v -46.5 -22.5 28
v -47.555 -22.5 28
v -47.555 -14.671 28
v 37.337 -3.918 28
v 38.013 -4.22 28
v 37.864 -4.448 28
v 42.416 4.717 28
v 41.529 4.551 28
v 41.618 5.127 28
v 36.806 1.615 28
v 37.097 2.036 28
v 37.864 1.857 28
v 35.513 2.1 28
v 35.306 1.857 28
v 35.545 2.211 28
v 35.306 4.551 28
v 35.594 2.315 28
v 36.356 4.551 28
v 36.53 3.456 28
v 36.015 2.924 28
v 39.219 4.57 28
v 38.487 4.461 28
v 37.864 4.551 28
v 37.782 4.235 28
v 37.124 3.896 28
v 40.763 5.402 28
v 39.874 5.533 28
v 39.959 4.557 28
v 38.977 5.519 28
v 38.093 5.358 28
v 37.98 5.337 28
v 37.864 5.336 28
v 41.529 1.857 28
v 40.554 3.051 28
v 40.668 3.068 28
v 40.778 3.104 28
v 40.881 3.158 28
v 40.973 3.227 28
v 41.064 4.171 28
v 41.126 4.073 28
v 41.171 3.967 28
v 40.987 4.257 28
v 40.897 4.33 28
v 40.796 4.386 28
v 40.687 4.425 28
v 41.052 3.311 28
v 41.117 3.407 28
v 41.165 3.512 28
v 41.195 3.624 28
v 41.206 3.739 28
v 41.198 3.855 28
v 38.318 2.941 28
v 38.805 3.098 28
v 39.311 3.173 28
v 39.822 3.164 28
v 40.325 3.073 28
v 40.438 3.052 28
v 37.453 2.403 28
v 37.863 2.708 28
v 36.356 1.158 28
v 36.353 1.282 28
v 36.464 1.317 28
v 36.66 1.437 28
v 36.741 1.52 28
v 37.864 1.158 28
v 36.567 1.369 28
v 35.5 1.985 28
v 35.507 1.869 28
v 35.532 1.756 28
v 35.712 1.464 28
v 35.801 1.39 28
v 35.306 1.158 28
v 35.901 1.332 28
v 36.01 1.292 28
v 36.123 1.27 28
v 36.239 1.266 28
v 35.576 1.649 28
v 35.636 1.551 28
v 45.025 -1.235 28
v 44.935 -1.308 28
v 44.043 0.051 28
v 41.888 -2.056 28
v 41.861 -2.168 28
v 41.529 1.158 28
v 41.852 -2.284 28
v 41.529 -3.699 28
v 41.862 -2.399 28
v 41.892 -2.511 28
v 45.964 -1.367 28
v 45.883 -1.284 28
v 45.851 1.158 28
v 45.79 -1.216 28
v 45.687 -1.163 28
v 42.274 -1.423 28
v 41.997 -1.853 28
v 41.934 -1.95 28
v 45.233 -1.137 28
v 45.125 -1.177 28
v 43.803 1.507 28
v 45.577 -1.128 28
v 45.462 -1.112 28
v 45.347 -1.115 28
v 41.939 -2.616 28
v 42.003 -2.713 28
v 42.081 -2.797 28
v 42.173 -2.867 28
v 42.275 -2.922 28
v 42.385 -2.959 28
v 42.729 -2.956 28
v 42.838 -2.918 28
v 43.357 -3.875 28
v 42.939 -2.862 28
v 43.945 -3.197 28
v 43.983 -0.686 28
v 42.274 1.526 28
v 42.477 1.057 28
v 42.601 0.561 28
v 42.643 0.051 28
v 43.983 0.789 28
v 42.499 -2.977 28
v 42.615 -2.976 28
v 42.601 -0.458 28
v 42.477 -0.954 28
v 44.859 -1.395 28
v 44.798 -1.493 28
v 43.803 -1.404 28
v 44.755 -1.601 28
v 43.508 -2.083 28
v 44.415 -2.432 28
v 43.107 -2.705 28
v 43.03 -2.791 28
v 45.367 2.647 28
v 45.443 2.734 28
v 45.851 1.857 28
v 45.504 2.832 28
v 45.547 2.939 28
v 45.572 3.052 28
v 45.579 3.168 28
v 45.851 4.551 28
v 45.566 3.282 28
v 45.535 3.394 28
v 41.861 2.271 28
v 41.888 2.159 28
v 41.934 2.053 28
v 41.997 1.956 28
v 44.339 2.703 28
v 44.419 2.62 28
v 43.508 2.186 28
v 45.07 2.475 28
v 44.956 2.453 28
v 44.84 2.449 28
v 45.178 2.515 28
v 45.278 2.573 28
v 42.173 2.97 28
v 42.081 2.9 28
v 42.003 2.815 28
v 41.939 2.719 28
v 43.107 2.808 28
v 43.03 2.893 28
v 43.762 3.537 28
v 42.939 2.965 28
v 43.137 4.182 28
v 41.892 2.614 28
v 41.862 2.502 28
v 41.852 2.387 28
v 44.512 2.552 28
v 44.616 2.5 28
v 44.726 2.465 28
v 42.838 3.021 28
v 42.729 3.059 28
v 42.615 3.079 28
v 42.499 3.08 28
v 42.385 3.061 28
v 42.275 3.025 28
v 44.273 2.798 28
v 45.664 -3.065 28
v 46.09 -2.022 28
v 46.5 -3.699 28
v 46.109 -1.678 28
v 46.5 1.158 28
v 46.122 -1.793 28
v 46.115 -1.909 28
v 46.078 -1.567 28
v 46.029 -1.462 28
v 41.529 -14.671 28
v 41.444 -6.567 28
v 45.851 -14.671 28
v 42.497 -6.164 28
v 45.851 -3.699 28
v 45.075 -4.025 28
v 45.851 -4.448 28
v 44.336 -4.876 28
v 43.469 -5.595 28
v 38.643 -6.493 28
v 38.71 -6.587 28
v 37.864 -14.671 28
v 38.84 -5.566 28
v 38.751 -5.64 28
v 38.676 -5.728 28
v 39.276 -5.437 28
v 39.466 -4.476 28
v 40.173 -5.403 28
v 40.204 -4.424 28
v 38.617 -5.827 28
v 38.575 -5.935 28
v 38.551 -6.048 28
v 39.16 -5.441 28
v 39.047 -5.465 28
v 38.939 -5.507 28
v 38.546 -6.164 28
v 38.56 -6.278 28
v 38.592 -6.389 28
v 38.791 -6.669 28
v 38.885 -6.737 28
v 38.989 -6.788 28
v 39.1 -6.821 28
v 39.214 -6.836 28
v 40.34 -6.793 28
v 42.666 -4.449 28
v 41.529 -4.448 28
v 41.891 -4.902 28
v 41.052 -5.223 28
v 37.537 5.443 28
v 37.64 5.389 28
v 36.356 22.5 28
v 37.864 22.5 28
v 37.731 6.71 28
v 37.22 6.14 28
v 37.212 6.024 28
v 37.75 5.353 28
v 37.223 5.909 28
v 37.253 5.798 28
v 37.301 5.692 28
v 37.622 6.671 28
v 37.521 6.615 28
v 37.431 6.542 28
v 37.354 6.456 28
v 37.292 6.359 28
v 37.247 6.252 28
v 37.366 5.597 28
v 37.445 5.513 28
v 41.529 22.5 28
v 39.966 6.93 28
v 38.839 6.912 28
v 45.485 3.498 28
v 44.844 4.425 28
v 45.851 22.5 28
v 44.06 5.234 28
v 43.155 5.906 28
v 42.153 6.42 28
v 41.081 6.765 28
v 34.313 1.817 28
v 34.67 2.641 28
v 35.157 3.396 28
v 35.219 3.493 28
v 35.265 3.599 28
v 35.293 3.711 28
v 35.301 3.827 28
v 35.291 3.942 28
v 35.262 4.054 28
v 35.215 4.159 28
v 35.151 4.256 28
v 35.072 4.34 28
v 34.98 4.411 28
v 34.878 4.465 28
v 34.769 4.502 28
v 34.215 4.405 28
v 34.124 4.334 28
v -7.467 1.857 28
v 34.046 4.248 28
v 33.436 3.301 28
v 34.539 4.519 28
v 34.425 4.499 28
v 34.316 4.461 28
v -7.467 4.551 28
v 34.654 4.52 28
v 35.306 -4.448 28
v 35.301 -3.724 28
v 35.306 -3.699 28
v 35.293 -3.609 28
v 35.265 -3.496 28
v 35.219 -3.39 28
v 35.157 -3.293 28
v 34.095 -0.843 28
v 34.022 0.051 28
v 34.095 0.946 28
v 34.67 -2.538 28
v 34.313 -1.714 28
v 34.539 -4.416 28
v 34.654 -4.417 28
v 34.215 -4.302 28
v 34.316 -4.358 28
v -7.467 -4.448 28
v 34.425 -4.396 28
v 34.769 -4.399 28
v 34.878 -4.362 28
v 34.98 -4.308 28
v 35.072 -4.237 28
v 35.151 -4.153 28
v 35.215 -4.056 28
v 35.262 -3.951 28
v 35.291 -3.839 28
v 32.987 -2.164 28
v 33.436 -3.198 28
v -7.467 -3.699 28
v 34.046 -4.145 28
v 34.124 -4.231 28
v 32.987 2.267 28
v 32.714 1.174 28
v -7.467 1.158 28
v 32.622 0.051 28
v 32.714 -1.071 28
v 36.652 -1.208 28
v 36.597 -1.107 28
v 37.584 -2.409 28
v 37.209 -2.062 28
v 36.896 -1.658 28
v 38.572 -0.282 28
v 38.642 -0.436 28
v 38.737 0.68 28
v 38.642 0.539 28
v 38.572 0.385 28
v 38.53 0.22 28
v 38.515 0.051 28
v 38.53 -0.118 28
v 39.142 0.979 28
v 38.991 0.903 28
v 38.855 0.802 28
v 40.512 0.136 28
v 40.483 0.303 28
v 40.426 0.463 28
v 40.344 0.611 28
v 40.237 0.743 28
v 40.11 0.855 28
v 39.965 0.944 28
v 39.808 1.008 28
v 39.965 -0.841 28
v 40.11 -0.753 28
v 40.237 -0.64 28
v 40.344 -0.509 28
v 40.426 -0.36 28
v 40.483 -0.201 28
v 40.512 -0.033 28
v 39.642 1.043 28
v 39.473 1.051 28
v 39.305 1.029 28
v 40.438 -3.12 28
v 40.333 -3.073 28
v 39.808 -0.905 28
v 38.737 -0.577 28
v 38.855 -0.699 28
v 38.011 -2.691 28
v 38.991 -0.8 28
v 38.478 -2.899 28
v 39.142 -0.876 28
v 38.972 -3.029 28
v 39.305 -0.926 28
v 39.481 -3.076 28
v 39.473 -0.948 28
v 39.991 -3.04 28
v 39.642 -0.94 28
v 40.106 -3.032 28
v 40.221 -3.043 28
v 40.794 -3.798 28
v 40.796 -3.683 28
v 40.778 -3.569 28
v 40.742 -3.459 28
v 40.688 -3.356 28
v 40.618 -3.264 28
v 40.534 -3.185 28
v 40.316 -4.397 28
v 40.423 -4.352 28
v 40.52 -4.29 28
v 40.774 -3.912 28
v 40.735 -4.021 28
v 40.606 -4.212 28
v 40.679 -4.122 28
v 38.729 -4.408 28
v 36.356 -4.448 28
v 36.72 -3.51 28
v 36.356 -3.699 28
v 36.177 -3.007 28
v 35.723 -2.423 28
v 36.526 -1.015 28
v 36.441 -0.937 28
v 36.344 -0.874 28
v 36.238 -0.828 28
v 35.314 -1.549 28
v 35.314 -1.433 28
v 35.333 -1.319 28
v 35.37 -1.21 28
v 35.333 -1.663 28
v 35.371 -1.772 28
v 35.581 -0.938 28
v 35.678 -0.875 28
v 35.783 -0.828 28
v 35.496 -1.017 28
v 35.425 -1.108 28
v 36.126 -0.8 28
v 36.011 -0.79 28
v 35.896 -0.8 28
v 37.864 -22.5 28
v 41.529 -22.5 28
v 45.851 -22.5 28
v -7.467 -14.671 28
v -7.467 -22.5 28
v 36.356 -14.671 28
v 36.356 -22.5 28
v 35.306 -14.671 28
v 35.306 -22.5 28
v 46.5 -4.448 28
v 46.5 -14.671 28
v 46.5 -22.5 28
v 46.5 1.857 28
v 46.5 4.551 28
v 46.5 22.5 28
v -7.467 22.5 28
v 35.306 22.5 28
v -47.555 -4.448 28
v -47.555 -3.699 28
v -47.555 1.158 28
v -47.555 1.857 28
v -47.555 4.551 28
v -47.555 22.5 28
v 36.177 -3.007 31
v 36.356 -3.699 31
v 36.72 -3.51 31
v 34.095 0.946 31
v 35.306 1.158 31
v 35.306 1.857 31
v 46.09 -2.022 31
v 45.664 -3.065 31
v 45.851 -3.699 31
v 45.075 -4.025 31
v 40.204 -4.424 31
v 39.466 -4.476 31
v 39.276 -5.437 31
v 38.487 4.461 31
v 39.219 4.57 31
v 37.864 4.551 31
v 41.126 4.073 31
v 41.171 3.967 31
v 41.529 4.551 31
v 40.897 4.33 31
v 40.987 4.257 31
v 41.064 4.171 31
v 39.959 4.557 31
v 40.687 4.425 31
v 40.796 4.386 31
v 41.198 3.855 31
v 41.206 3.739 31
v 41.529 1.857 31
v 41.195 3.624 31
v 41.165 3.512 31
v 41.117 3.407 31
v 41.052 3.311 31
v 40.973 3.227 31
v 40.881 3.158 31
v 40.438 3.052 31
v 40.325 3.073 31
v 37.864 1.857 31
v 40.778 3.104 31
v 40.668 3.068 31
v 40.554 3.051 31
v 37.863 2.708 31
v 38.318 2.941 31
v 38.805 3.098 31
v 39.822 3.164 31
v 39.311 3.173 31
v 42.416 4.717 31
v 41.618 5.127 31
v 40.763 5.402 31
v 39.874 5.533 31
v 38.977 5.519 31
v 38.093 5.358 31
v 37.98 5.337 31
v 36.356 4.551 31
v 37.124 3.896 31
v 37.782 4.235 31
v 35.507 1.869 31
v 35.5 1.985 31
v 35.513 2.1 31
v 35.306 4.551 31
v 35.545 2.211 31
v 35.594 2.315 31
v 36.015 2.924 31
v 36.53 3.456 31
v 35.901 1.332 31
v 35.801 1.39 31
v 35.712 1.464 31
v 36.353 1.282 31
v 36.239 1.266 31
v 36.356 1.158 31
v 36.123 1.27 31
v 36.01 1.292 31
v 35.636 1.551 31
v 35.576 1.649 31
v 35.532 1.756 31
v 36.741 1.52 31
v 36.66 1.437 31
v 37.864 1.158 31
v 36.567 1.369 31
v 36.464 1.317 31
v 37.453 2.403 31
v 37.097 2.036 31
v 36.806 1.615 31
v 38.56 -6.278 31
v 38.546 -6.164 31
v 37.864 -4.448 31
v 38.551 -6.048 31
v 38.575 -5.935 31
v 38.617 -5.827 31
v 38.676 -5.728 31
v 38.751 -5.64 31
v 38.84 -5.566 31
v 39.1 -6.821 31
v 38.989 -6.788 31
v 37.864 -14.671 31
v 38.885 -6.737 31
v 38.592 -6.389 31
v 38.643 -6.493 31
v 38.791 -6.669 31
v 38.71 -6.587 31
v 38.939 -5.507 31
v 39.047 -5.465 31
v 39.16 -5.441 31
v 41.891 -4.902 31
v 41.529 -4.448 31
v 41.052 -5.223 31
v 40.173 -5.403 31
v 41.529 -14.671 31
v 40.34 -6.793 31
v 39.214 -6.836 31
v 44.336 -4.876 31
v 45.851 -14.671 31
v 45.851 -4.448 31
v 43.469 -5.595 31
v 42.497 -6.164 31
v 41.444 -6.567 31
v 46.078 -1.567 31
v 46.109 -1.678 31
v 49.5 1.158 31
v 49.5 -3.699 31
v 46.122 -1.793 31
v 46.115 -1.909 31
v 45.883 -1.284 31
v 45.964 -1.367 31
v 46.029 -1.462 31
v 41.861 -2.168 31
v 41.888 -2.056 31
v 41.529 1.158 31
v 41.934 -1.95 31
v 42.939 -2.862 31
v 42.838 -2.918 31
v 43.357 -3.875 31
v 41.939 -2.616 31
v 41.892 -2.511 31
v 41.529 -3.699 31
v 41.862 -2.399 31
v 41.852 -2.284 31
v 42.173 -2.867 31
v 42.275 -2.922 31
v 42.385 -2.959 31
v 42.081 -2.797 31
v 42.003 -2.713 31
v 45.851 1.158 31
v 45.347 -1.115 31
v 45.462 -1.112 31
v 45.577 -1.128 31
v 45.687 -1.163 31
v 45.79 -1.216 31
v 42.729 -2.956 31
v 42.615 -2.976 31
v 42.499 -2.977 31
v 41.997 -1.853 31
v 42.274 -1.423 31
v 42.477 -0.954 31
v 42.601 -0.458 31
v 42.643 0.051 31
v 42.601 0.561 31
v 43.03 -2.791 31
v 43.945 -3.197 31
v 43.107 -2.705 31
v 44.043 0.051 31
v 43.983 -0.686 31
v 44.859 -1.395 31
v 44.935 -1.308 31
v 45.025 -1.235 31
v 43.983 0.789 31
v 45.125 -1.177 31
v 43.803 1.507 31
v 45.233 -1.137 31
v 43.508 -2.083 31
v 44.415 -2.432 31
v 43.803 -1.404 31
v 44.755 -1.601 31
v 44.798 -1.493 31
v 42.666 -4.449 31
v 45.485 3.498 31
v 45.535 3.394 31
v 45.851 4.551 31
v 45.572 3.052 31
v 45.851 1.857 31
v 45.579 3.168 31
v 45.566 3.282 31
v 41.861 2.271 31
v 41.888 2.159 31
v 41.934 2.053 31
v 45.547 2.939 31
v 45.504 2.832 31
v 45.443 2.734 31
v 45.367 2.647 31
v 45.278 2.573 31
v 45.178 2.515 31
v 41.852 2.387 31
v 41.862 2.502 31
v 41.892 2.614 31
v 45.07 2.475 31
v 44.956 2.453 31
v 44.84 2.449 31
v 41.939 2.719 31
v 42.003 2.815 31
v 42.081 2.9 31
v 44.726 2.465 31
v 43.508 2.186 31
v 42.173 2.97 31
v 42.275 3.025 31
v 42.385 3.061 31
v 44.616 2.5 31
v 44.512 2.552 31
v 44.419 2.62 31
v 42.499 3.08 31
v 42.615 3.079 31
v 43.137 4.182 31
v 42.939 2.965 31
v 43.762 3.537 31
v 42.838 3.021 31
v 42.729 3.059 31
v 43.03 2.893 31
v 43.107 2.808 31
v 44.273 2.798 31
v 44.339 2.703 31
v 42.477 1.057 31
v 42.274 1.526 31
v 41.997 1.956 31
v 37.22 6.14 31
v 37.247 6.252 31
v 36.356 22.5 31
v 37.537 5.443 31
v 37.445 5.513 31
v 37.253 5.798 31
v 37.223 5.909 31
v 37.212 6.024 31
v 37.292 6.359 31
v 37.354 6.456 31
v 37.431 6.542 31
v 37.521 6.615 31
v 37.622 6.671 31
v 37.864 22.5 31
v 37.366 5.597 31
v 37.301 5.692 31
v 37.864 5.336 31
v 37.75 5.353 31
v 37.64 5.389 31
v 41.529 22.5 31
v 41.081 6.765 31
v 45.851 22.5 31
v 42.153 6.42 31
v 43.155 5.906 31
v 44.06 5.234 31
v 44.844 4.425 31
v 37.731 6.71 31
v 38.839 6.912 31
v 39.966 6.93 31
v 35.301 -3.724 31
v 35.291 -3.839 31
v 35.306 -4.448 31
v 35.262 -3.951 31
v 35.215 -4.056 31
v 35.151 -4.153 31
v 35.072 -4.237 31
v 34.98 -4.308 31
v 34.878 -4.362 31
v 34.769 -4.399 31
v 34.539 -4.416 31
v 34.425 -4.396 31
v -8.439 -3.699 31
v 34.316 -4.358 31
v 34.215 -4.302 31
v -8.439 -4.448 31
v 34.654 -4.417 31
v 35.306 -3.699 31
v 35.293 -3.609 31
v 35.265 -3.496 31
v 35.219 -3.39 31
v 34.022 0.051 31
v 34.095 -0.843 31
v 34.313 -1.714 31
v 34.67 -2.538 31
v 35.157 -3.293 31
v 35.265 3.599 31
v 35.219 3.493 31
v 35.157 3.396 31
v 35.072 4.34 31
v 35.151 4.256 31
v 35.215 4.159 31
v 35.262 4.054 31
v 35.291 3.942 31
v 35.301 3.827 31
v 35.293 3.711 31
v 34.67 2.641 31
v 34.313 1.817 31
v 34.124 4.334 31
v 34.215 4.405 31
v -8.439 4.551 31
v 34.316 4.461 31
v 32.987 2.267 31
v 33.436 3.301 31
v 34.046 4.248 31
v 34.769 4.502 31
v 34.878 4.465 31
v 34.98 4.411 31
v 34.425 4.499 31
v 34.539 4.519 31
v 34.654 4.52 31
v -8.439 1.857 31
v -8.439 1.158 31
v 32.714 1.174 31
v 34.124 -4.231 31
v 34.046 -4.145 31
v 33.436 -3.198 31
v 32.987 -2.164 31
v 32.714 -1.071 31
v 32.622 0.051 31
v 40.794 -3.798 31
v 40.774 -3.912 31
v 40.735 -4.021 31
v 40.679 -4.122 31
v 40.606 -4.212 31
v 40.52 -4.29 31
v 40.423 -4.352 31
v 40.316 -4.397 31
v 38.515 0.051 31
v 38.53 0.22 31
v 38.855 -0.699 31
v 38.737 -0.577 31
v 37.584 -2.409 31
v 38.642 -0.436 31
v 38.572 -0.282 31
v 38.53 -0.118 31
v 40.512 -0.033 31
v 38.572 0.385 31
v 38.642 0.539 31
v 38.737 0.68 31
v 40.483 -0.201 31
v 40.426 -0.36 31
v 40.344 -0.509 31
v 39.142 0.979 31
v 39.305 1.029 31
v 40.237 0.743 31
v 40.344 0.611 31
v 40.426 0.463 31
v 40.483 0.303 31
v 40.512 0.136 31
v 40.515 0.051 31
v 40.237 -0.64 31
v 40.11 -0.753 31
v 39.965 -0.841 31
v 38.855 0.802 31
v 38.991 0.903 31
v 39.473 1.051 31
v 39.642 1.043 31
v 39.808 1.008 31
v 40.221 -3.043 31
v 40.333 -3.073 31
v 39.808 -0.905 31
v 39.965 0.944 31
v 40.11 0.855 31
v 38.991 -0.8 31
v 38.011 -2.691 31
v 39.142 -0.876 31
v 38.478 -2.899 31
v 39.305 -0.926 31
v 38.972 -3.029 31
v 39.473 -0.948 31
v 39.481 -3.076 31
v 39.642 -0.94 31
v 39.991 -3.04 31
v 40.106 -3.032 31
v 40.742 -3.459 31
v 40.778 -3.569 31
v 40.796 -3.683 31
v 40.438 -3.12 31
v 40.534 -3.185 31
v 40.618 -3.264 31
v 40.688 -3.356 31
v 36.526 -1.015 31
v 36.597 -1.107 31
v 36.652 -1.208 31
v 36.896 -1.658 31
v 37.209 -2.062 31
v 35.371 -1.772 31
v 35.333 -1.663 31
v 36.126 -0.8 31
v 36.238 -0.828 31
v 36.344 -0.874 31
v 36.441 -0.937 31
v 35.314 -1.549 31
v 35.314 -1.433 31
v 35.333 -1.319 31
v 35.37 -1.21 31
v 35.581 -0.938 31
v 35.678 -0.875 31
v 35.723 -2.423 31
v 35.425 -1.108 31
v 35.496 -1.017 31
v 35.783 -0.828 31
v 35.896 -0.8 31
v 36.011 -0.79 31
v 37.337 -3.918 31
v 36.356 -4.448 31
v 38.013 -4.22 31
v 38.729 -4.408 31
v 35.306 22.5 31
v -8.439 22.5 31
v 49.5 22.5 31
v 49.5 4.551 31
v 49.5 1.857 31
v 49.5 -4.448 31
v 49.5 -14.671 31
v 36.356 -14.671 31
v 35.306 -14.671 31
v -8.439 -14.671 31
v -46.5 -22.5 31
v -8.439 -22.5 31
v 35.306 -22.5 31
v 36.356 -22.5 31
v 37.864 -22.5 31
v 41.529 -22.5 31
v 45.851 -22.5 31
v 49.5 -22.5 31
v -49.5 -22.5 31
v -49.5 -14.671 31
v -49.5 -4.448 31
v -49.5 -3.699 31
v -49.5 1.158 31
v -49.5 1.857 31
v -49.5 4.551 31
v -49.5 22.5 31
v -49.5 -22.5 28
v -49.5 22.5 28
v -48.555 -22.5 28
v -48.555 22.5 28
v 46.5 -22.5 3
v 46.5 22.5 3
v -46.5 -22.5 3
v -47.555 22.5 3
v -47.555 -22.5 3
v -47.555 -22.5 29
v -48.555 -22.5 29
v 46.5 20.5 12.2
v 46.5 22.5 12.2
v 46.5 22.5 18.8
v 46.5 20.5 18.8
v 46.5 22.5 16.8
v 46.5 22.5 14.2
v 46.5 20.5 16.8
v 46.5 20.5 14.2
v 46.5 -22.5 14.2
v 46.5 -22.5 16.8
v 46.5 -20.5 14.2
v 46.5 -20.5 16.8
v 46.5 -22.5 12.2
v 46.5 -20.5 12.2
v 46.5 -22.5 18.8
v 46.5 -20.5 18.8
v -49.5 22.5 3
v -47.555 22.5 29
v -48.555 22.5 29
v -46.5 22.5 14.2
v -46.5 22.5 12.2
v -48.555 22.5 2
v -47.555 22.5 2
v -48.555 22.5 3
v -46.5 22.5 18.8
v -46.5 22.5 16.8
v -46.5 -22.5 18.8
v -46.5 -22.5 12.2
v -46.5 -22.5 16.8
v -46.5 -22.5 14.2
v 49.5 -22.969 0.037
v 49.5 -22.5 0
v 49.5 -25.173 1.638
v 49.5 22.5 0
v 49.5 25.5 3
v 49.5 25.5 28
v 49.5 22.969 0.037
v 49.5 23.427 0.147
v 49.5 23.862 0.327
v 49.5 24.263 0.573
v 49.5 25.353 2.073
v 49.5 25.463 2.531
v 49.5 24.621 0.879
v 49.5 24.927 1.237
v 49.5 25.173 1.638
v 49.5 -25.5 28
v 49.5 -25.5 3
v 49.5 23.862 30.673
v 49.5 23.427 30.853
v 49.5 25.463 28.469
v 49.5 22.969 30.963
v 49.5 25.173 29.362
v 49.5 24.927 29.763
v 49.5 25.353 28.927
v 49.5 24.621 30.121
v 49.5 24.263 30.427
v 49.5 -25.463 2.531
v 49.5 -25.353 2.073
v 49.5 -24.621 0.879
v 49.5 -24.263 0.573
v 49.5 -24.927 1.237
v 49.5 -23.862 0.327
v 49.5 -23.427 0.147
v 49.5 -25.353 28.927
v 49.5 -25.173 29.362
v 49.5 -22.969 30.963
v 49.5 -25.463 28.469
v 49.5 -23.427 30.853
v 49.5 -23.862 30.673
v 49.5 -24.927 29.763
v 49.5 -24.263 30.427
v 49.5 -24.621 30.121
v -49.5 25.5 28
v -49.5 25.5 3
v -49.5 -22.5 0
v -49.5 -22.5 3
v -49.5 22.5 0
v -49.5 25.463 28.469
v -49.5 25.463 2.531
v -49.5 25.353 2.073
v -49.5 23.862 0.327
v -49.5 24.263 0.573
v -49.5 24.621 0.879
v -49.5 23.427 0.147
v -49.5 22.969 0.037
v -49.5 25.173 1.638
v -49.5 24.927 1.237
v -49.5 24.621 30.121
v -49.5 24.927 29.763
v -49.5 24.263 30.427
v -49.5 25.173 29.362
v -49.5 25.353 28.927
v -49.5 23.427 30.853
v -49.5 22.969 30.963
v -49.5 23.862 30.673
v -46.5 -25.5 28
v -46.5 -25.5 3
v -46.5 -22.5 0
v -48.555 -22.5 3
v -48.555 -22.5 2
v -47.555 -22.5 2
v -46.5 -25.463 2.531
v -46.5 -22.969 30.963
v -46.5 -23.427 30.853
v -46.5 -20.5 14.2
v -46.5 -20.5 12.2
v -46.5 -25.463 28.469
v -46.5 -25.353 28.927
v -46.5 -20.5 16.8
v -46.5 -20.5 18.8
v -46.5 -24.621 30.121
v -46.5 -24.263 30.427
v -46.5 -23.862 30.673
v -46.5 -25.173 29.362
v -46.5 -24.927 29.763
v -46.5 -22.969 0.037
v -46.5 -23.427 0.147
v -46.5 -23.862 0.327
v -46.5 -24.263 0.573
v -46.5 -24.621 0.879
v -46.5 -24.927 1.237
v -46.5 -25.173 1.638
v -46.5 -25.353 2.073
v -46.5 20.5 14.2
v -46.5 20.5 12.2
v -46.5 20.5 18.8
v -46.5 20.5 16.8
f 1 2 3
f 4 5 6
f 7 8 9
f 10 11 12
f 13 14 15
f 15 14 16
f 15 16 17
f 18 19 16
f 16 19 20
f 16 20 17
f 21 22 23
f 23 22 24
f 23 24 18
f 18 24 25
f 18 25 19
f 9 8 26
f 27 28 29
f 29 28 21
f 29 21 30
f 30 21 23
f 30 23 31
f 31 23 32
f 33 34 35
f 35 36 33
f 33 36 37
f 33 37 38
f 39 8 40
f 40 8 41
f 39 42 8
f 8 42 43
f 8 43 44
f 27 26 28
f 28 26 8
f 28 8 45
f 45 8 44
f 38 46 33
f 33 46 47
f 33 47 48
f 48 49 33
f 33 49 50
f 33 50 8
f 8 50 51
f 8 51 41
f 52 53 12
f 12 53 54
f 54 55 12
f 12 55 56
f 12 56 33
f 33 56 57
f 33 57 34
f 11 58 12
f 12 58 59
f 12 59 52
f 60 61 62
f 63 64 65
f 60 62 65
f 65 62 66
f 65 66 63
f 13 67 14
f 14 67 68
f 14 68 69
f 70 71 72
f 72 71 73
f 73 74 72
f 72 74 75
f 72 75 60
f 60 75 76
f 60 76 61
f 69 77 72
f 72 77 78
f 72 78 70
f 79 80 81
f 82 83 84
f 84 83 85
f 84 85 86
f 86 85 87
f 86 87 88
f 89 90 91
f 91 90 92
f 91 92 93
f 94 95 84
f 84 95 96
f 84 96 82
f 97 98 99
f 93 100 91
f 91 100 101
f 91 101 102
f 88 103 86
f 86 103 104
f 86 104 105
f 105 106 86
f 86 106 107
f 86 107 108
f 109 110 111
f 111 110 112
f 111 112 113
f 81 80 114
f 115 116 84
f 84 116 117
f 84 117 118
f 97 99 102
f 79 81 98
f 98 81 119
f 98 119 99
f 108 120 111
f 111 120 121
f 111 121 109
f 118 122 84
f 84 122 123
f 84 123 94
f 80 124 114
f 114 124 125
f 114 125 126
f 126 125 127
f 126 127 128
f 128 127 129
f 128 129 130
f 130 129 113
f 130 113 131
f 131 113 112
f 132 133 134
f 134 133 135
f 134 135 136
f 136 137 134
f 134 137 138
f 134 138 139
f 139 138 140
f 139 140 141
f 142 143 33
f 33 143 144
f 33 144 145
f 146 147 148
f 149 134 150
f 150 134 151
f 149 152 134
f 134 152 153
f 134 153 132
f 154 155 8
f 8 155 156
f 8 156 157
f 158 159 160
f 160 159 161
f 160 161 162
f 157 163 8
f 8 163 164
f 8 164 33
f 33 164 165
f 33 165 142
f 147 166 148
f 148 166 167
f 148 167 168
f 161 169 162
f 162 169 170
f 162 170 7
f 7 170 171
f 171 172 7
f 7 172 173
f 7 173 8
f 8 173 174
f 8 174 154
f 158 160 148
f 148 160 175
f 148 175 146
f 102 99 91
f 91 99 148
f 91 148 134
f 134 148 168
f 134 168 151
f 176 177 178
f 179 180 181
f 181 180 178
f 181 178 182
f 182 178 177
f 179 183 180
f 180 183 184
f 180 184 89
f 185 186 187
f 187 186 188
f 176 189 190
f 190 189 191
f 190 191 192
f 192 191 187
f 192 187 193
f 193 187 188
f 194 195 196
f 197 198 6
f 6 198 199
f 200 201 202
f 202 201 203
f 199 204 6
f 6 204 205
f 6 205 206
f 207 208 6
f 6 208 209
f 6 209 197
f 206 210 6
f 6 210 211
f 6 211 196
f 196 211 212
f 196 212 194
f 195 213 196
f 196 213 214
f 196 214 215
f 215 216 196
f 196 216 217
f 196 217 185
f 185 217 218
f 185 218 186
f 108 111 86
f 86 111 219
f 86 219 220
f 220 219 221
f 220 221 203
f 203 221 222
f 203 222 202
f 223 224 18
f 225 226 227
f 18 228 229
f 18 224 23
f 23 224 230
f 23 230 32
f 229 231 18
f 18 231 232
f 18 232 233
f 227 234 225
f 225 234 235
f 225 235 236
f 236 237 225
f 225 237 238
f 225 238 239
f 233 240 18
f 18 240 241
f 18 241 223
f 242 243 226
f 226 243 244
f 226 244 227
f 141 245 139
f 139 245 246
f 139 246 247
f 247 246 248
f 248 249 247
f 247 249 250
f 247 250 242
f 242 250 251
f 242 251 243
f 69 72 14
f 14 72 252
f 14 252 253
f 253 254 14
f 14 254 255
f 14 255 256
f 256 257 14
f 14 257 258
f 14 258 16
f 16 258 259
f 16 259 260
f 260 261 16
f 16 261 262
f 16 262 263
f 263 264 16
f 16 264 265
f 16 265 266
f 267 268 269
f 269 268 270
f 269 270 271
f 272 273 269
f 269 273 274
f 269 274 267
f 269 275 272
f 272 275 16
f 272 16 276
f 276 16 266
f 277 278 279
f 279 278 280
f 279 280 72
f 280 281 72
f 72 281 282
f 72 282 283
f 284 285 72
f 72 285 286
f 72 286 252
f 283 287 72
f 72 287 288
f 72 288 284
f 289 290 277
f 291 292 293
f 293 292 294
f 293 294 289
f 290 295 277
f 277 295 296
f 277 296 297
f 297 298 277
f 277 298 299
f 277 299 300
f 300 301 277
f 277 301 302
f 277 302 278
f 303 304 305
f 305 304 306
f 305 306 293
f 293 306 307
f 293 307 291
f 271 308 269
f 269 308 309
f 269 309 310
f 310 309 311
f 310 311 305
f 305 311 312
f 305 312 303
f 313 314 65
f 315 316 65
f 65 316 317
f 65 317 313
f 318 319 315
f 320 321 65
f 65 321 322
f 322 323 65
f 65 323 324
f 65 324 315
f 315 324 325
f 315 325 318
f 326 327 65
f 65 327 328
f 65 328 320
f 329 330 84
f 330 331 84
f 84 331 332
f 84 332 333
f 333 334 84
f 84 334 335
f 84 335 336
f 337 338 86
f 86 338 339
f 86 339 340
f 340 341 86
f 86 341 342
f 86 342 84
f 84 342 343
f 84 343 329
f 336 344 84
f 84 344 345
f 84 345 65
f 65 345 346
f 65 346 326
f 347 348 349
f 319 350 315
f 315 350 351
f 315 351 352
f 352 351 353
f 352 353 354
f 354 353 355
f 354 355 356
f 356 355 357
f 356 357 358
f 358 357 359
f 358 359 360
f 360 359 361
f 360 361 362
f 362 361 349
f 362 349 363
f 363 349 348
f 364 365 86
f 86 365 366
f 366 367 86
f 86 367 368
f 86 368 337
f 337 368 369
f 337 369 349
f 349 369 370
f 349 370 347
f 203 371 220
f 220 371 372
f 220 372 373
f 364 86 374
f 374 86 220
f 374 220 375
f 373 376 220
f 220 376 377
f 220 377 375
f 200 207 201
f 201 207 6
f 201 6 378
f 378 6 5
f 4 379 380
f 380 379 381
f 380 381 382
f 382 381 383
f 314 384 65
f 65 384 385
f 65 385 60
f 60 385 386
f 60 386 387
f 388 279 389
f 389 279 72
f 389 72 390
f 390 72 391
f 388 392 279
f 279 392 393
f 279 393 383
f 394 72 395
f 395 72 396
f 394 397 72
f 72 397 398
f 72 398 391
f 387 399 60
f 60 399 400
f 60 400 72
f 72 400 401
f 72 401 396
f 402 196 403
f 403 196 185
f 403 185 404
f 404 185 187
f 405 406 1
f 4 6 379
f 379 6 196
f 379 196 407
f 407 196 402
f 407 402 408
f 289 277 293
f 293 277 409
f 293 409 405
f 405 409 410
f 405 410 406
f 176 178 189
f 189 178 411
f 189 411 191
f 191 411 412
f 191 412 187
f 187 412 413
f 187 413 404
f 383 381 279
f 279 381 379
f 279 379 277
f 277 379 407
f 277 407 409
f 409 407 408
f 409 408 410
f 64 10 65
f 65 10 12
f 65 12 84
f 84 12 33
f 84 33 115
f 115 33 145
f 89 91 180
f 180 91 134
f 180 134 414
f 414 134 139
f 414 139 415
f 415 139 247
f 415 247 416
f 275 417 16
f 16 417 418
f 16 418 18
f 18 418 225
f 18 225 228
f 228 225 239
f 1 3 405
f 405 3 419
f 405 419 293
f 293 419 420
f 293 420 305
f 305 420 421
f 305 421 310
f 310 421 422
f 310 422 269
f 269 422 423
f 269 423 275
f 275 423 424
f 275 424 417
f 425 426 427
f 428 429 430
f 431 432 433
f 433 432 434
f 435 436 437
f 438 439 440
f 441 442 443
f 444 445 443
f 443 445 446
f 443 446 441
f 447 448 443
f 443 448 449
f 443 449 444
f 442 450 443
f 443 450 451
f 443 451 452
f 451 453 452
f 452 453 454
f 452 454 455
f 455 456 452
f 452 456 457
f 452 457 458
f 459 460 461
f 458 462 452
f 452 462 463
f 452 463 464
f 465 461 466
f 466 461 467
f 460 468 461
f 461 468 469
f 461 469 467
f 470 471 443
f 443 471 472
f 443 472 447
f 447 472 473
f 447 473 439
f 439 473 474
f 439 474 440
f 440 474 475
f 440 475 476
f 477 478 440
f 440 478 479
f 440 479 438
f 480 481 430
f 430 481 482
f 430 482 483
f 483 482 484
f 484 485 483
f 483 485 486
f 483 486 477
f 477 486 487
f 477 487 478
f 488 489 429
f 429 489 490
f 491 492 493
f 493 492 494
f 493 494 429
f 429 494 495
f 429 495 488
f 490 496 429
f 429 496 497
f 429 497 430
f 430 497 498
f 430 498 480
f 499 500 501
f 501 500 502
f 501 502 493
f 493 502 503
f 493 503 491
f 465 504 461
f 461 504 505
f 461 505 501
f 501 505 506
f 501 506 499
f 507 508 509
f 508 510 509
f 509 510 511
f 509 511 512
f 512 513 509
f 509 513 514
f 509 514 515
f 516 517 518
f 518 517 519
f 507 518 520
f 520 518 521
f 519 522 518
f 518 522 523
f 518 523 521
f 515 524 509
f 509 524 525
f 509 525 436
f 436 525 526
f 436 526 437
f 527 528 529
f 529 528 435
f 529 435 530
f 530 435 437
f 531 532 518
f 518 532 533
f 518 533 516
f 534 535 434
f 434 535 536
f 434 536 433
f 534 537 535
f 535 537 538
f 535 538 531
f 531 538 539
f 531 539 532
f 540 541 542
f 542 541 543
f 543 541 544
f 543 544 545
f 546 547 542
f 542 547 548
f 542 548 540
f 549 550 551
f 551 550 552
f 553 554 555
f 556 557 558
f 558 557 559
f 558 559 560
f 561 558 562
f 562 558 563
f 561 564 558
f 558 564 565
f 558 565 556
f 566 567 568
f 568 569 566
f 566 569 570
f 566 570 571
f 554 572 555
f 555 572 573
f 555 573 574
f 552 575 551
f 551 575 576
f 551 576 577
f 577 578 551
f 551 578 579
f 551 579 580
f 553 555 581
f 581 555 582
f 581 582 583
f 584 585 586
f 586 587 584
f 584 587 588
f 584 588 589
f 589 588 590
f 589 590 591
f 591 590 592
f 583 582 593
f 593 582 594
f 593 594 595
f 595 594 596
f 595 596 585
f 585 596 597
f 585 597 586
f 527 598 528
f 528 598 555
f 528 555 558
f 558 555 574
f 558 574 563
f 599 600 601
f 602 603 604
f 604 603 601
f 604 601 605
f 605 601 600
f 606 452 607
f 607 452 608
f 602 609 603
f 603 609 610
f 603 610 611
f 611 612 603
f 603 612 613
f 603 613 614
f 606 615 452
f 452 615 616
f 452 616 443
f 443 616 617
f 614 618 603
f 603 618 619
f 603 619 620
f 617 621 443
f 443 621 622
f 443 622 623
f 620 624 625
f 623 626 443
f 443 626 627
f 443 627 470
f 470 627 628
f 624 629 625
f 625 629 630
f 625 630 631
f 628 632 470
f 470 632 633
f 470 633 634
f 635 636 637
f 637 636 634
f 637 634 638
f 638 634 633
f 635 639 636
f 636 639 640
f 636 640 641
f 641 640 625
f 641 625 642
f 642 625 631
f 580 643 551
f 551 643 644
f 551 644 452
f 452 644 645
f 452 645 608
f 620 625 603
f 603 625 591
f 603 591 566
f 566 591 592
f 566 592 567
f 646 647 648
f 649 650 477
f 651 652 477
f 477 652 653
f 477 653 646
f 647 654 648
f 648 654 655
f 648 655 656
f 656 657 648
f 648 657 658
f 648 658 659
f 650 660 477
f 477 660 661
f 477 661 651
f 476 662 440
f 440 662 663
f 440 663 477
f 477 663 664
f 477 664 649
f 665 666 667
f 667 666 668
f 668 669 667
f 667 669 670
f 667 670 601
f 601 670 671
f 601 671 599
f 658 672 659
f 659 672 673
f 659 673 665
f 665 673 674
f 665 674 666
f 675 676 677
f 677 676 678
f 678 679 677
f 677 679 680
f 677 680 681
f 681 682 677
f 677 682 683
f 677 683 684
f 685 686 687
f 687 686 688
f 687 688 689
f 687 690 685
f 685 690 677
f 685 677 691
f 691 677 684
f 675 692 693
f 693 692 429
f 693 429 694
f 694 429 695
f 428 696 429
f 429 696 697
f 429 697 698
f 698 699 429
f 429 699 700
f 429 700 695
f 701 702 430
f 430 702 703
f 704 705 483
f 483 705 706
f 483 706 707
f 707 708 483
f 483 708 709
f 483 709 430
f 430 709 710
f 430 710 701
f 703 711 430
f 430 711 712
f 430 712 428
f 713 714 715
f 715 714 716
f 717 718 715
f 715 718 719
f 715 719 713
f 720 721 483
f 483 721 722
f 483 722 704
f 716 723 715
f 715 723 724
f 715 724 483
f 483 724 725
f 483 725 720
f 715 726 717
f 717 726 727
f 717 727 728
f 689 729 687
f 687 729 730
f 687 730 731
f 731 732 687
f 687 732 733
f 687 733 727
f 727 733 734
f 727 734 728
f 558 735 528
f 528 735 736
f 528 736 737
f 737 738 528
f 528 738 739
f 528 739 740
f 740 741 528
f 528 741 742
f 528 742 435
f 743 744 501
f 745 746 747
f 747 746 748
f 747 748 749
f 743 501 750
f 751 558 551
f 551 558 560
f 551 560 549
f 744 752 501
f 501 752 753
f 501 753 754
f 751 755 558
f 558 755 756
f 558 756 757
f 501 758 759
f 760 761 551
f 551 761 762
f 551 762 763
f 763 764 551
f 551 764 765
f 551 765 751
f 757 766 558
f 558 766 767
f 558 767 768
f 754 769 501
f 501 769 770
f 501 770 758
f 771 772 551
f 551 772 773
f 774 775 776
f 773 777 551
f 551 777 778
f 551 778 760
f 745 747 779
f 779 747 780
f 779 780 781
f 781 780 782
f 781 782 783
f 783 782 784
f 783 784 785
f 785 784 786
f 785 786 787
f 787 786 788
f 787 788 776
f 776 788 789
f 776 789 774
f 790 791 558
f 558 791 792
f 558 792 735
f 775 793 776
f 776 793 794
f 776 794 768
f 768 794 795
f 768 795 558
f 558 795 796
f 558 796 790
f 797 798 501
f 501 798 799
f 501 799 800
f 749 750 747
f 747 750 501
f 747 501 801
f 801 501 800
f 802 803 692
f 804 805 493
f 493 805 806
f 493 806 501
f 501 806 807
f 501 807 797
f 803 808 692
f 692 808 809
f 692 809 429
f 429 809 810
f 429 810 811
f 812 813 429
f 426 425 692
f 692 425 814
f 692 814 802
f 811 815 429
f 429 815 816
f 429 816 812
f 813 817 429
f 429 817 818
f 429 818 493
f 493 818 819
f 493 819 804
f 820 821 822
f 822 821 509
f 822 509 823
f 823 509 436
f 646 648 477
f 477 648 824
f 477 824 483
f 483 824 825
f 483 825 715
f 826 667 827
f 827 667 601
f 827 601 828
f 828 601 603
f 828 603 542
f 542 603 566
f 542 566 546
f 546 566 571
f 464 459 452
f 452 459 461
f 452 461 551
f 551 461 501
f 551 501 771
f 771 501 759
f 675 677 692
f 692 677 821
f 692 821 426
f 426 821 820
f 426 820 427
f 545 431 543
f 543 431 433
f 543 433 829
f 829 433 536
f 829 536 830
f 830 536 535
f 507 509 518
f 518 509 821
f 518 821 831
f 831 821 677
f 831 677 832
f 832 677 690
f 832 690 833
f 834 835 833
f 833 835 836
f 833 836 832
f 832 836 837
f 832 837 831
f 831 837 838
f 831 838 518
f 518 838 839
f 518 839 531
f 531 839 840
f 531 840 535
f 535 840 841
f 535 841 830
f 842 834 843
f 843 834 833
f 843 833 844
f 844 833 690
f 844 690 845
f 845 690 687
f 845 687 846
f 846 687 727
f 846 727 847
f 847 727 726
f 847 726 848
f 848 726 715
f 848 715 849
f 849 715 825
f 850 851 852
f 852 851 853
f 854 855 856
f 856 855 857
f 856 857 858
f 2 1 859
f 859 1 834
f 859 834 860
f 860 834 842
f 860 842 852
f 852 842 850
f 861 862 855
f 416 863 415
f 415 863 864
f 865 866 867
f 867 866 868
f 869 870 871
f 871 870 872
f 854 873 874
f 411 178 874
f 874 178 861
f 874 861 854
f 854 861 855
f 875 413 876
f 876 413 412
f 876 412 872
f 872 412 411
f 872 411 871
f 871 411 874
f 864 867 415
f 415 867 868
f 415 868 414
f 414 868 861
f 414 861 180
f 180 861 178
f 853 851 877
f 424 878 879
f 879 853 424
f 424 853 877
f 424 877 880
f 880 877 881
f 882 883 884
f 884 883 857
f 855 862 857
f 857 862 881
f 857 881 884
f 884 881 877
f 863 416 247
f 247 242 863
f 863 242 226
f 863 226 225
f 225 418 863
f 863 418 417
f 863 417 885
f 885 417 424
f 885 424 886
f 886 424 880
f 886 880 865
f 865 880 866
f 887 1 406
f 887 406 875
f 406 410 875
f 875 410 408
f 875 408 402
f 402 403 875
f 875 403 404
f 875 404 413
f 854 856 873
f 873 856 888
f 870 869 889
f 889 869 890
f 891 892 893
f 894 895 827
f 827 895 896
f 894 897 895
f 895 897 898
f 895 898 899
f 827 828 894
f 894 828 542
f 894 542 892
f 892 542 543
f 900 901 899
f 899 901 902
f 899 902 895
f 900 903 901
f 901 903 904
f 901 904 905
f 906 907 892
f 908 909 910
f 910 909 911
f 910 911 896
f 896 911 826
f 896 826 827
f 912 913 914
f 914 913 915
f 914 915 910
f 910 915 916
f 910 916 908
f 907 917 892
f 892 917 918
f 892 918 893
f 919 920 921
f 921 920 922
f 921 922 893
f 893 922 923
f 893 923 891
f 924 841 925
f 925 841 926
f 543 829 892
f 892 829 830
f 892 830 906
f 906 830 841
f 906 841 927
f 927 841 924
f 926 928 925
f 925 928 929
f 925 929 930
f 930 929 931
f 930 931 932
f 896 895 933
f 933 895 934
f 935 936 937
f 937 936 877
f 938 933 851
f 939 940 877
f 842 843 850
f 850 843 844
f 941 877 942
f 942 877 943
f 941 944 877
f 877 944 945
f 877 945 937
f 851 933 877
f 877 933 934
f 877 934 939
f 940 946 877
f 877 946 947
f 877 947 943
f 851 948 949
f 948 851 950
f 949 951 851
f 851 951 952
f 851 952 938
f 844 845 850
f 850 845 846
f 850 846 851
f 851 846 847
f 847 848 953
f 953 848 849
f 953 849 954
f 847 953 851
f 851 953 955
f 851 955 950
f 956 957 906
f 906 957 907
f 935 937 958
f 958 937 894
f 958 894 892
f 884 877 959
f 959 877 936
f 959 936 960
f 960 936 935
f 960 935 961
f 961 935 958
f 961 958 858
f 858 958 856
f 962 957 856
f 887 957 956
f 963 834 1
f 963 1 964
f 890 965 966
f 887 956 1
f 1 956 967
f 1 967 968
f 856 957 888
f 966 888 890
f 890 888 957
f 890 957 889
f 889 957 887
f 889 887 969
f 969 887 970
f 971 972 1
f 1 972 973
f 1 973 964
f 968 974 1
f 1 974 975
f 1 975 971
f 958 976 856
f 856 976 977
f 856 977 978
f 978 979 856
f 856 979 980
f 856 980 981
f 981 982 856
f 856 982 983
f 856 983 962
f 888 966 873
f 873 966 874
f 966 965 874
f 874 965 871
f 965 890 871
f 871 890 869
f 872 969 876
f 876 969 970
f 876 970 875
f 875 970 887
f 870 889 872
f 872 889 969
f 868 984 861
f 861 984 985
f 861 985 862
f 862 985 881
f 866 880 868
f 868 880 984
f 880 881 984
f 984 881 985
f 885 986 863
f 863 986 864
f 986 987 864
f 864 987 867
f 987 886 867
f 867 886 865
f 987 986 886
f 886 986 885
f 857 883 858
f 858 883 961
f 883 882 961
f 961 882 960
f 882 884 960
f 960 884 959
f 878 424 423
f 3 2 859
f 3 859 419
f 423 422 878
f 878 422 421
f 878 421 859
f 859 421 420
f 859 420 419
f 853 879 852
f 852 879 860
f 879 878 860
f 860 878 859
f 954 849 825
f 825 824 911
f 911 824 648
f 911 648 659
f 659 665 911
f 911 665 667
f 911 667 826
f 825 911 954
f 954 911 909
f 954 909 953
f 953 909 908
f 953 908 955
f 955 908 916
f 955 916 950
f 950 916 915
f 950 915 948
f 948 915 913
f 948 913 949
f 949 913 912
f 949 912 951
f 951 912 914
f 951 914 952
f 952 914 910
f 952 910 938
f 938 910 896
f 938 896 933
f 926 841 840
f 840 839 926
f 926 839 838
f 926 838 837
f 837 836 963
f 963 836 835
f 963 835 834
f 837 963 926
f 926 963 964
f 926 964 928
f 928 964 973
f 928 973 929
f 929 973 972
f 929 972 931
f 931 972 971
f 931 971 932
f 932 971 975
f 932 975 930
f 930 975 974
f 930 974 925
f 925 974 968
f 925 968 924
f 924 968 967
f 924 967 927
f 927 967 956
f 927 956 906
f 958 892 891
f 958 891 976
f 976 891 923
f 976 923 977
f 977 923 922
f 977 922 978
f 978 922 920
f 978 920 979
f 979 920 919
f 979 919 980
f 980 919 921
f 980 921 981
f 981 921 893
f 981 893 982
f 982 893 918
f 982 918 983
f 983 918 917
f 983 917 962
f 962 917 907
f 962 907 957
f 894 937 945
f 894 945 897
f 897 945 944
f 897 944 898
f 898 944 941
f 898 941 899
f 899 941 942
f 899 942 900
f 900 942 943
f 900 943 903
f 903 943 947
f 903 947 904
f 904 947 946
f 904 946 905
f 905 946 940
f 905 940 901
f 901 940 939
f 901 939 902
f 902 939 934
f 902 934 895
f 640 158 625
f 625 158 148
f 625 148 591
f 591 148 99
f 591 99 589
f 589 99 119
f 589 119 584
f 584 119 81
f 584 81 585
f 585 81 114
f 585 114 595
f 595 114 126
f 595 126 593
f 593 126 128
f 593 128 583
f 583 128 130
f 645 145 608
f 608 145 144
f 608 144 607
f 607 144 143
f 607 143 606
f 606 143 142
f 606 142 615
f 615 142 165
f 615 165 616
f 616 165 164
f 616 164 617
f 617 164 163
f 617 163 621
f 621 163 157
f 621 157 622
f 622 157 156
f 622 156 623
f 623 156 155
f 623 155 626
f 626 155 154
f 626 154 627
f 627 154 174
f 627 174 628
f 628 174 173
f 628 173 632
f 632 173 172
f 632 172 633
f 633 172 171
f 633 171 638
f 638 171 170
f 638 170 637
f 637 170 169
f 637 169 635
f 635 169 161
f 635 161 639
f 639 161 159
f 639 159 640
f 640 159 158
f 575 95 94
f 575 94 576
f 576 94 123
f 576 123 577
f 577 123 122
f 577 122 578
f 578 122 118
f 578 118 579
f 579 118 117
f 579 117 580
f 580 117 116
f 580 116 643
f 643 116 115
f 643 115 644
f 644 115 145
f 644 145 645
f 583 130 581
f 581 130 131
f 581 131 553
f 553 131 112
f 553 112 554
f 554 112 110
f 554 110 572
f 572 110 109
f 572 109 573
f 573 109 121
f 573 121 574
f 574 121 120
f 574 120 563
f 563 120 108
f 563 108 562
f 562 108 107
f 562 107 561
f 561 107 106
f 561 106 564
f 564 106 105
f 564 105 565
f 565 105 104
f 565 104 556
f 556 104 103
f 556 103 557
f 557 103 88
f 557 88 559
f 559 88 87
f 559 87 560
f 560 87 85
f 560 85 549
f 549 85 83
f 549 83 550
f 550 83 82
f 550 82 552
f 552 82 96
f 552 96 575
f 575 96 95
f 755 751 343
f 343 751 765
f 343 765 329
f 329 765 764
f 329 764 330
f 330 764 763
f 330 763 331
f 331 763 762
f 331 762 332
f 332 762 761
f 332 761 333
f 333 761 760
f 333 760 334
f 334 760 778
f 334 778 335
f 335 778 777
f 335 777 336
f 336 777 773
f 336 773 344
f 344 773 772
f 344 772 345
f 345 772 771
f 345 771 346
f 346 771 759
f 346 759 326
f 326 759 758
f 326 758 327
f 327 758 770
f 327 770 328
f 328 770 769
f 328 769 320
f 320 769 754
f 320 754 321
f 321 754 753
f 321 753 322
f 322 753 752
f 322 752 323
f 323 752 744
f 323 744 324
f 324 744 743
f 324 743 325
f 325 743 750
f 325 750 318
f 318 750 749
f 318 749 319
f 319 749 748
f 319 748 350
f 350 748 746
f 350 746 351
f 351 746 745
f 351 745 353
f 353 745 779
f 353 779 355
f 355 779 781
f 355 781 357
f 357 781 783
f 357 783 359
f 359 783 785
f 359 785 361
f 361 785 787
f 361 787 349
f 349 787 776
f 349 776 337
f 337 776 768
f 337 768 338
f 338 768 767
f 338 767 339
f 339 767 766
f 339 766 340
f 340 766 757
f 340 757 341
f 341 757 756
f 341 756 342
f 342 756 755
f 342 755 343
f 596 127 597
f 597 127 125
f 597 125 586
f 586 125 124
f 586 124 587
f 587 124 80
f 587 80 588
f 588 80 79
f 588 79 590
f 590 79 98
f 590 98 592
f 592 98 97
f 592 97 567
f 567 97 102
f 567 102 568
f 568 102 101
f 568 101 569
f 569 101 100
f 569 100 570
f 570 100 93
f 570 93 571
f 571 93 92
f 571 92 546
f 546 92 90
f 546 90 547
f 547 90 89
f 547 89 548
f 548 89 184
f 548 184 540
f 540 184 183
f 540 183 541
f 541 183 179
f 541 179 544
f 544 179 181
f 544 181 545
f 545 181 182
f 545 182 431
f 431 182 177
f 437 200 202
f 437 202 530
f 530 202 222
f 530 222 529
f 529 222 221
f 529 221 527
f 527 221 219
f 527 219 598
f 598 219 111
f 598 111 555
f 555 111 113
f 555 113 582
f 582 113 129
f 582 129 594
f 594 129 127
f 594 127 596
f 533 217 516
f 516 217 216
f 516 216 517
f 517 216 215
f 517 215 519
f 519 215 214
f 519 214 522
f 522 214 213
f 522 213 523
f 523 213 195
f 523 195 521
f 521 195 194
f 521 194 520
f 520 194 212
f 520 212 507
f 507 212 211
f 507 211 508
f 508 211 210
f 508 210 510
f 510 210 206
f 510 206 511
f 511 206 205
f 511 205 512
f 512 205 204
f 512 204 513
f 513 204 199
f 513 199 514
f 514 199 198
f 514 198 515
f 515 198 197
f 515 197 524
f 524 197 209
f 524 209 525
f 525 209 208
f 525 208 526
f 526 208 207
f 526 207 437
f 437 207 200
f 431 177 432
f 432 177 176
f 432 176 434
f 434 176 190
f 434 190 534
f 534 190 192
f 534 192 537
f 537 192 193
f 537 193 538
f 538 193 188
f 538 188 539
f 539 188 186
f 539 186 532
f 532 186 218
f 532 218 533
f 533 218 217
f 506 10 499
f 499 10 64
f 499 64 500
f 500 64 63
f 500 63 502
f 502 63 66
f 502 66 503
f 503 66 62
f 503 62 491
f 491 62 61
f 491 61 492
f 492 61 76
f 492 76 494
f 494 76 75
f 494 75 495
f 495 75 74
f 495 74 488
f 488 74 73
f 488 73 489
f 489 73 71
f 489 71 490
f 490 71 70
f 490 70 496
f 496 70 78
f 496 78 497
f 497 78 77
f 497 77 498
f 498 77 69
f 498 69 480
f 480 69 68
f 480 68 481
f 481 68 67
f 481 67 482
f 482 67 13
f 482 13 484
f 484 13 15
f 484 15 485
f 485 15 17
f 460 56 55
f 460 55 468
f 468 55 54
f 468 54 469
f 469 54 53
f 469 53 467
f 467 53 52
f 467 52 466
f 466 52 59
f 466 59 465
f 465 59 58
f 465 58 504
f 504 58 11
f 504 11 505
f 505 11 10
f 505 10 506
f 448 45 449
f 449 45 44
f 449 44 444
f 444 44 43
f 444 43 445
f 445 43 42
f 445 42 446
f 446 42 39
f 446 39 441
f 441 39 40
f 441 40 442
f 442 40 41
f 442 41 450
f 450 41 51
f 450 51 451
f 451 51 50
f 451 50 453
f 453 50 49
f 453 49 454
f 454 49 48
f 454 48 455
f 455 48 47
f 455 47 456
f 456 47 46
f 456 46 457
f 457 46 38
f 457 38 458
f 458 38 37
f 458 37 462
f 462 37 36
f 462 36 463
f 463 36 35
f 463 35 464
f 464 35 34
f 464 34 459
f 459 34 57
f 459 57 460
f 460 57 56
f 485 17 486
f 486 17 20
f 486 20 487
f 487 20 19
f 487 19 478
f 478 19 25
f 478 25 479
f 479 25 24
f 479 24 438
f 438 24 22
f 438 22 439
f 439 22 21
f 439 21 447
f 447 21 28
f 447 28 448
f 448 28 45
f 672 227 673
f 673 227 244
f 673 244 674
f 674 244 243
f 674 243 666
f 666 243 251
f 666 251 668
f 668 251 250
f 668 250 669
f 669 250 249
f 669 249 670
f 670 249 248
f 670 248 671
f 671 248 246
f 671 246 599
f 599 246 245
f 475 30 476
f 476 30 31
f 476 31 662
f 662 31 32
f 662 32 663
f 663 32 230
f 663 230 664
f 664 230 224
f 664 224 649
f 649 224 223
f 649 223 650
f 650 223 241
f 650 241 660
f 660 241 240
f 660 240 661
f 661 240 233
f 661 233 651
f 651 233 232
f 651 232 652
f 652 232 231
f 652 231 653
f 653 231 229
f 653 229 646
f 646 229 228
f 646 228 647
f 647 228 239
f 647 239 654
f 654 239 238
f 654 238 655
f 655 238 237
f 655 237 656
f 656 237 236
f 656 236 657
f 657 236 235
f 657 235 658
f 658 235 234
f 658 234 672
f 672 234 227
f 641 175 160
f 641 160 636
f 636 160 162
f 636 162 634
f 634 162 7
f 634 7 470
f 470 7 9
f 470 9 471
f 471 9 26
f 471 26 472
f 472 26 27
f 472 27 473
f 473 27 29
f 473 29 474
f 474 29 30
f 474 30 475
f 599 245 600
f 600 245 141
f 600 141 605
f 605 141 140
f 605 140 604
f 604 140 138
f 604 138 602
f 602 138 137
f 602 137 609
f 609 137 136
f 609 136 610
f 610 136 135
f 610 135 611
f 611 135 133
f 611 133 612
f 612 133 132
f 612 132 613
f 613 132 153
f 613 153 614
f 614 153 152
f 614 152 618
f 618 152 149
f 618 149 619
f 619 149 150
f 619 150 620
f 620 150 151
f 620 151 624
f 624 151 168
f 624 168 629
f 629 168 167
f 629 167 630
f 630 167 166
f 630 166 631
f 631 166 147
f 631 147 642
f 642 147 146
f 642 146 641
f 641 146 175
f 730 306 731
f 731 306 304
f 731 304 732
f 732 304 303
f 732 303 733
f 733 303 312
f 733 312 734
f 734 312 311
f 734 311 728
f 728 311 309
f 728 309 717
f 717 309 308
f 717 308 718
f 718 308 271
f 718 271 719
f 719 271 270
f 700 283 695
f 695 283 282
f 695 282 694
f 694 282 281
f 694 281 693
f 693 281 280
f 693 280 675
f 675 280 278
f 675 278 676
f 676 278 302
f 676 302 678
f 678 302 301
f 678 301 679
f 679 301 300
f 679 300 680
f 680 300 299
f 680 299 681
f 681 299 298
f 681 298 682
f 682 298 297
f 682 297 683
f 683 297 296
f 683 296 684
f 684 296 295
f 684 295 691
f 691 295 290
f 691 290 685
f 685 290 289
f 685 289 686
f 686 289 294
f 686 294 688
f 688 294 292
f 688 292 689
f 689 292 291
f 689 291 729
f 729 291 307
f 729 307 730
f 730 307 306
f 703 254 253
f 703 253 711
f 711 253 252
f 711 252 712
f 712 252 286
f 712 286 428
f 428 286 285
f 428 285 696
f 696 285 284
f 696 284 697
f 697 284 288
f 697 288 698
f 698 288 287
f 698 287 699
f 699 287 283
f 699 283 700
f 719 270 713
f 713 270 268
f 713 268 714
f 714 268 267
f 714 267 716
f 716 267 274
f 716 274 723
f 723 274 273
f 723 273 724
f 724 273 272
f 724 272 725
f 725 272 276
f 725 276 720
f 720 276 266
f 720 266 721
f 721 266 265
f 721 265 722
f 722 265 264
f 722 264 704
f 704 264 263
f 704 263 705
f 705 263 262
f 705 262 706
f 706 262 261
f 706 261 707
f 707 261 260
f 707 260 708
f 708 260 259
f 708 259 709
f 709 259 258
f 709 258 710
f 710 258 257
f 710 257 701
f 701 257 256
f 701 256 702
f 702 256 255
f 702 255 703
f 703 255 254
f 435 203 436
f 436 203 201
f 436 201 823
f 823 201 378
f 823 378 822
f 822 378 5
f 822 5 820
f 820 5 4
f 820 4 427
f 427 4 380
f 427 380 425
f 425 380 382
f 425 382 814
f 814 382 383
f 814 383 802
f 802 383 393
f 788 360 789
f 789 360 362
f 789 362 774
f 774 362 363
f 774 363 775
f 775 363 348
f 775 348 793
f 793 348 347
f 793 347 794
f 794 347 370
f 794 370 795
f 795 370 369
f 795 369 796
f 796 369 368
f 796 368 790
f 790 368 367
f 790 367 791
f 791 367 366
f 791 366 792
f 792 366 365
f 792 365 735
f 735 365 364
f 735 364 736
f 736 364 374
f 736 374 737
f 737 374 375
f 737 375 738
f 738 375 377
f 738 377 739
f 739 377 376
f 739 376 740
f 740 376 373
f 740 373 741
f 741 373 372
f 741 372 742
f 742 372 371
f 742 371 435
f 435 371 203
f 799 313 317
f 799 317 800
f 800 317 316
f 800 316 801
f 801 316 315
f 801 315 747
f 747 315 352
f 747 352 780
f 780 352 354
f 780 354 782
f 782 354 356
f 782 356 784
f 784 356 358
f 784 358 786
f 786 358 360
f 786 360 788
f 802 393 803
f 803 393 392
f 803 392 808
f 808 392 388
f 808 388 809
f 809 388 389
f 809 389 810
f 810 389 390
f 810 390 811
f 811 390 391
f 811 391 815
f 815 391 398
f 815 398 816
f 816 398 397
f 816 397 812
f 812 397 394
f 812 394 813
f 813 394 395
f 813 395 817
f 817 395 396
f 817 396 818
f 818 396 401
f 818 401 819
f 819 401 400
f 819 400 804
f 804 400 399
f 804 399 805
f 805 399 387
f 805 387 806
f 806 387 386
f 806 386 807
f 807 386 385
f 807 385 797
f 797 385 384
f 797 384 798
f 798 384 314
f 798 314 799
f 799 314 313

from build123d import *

# Parameters (mm, degrees)
SKETCH1_W           = 99
SKETCH1_H           = 51
BOSS_EXTRUDE2_DEPTH = 31
CUT_EXTRUDE1_DEPTH  = 96
SKETCH4_W           = 3
SKETCH4_H           = 31
CUT_EXTRUDE2_DEPTH  = 3
SKETCH6_W           = 2
SKETCH6_H           = 2
BOSS_EXTRUDE3_DEPTH = 96
SKETCH7_W           = 1
SKETCH7_H           = 1
CUT_EXTRUDE3_DEPTH  = 45
FILLET1_R           = 3
SKETCH9_R           = 1
SKETCH9_R_2         = 0.5
CUT_EXTRUDE4_DEPTH  = 10


with BuildPart() as part:
    # Sketch1 → Boss-Extrude2 (new body)
    with BuildSketch(Plane.XY):
        Rectangle(SKETCH1_W, SKETCH1_H)
    extrude(amount=BOSS_EXTRUDE2_DEPTH)

    # Sketch3 → Cut-Extrude1 (cut)
    with BuildSketch(Plane.ZY.offset(49.5)):
        Polygon((3, 0.616456183), (3, -22.5), (28, -22.5), (28, 22.5), (3, 22.5), align=None)
    extrude(amount=-CUT_EXTRUDE1_DEPTH, mode=Mode.SUBTRACT)

    # Sketch4 → Cut-Extrude2 (cut)
    with BuildSketch(Plane.XZ.offset(25.5)):
        with Locations((-48, 15.5)):
            Rectangle(SKETCH4_W, SKETCH4_H)
    extrude(amount=-CUT_EXTRUDE2_DEPTH, mode=Mode.SUBTRACT)

    # Sketch6 → Boss-Extrude3 (add)
    with BuildSketch(Plane.ZY.offset(46.5)):
        with Locations((13.2, -21.5)):
            Rectangle(SKETCH6_W, SKETCH6_H)
        with Locations((17.8, -21.5)):
            Rectangle(SKETCH6_W, SKETCH6_H)
        with Locations((13.2, 21.5)):
            Rectangle(SKETCH6_W, SKETCH6_H)
        with Locations((17.8, 21.5)):
            Rectangle(SKETCH6_W, SKETCH6_H)
    extrude(amount=-BOSS_EXTRUDE3_DEPTH)

    # Sketch7 → Cut-Extrude3 (cut)
    with BuildSketch(Plane.XZ.offset(22.5)):
        with Locations((-48.055142405, 28.5)):
            Rectangle(SKETCH7_W, SKETCH7_H)
        with Locations((-48.055142405, 2.5)):
            Rectangle(SKETCH7_W, SKETCH7_H)
    extrude(amount=-CUT_EXTRUDE3_DEPTH, mode=Mode.SUBTRACT)

    # Fillet1
    fillet1_edges = [part.edges().sort_by_distance(p)[0] for p in [
        (0, 25.5, 31),
        (1.5, -25.5, 31),
        (1.5, -25.5, 0),
        (0, 25.5, 0),
    ]]
    fillet(fillet1_edges, radius=FILLET1_R)

    # Sketch9 → Cut-Extrude4 (cut)
    # profile 1 of 8: a face of its own
    with BuildSketch(Plane(origin=(0, 0, 28), x_dir=(-1, 0, 0), z_dir=(0, 0, -1))):
        with BuildLine():
            ThreePointArc((-43.107346254, 2.807819217), (-44.043005412, 0.051456221), (-43.107346254, -2.704906774))
            ThreePointArc((-43.107346254, -2.704906774), (-42.125865916, -2.834121112), (-41.996651578, -1.852640773))
            ThreePointArc((-41.996651578, -1.852640773), (-42.643005412, 0.051456221), (-41.996651578, 1.955553216))
            ThreePointArc((-41.996651578, 1.955553216), (-42.125865916, 2.937033554), (-43.107346254, 2.807819217))
        make_face()
    # profile 2 of 8: a face of its own
    with BuildSketch(Plane(origin=(0, 0, 28), x_dir=(-1, 0, 0), z_dir=(0, 0, -1))):
        with BuildLine():
            ThreePointArc((-37.730978714, 6.710201232), (-42.153265918, 6.420349215), (-45.485251514, 3.498276272))
            ThreePointArc((-45.485251514, 3.498276272), (-45.229033732, 2.542058489), (-44.272815949, 2.798276272))
            ThreePointArc((-44.272815949, 2.798276272), (-41.617509112, 5.12691787), (-38.093325377, 5.357905075))
            ThreePointArc((-38.093325377, 5.357905075), (-37.236003967, 5.852879822), (-37.730978714, 6.710201232))
        make_face()
    # profile 3 of 8: a face of its own
    with BuildSketch(Plane(origin=(0, 0, 28), x_dir=(-1, 0, 0), z_dir=(0, 0, -1))):
        with BuildLine():
            ThreePointArc((-35.59397575, 2.315366896), (-35.850193532, 1.359149114), (-36.806411315, 1.615366896))
            ThreePointArc((-36.806411315, 1.615366896), (-38.318218652, 2.941186348), (-40.324723797, 3.072699643))
            ThreePointArc((-40.324723797, 3.072699643), (-41.182045207, 3.56767439), (-40.68707046, 4.4249958))
            ThreePointArc((-40.68707046, 4.4249958), (-37.782461847, 4.234617693), (-35.59397575, 2.315366896))
        make_face()
    # profile 4 of 8: a face of its own
    with BuildSketch(Plane(origin=(0, 0, 28), x_dir=(-1, 0, 0), z_dir=(0, 0, -1))):
        with BuildLine():
            ThreePointArc((-34.046091661, -4.145125978), (-32.621543961, 0.051456221), (-34.046091661, 4.24803842))
            ThreePointArc((-34.046091661, 4.24803842), (-35.027572, 4.377252758), (-35.156786338, 3.39577242))
            ThreePointArc((-35.156786338, 3.39577242), (-34.021543961, 0.051456221), (-35.156786338, -3.292859977))
            ThreePointArc((-35.156786338, -3.292859977), (-35.027572, -4.274340315), (-34.046091661, -4.145125978))
        make_face()
    # profile 5 of 8: a face of its own
    with BuildSketch(Plane(origin=(0, 0, 28), x_dir=(-1, 0, 0), z_dir=(0, 0, -1))):
        with BuildLine():
            ThreePointArc((-40.203971578, -4.423668127), (-37.337352845, -3.918205901), (-35.370817206, -1.772108839))
            ThreePointArc((-35.370817206, -1.772108839), (-35.729612558, -0.849468121), (-36.652253276, -1.208263474))
            ThreePointArc((-36.652253276, -1.208263474), (-38.010737122, -2.690788443), (-39.990998837, -3.039962012))
            ThreePointArc((-39.990998837, -3.039962012), (-40.789338265, -3.625328699), (-40.203971578, -4.423668127))
        make_face()
    # profile 6 of 8: a face of its own
    with BuildSketch(Plane(origin=(0, 0, 28), x_dir=(-1, 0, 0), z_dir=(0, 0, -1))):
        with BuildLine():
            ThreePointArc((-46.089765479, -2.021501337), (-45.632657673, -1.143405411), (-44.754561748, -1.600513217))
            ThreePointArc((-44.754561748, -1.600513217), (-42.666206574, -4.448670298), (-39.275554847, -5.436955151))
            ThreePointArc((-39.275554847, -5.436955151), (-38.54568752, -6.105755335), (-39.214487704, -6.835622662))
            ThreePointArc((-39.214487704, -6.835622662), (-43.469213585, -5.59548316), (-46.089765479, -2.021501337))
        make_face()
    # profile 7 of 8: a face of its own
    with BuildSketch(Plane(origin=(0, 0, 28), x_dir=(-1, 0, 0), z_dir=(0, 0, -1))):
        with Locations((-39.515184062, 0.051456221)):
            Circle(SKETCH9_R)
        with Locations((-39.515184062, 0.051456221)):
            Circle(SKETCH9_R_2, mode=Mode.SUBTRACT)
    # profile 8 of 8: a face of its own
    with BuildSketch(Plane(origin=(0, 0, 28), x_dir=(-1, 0, 0), z_dir=(0, 0, -1))):
        with Locations((-39.515184062, 0.051456221)):
            Circle(SKETCH9_R_2)
    extrude(amount=-CUT_EXTRUDE4_DEPTH, mode=Mode.SUBTRACT)


solid = part.part
